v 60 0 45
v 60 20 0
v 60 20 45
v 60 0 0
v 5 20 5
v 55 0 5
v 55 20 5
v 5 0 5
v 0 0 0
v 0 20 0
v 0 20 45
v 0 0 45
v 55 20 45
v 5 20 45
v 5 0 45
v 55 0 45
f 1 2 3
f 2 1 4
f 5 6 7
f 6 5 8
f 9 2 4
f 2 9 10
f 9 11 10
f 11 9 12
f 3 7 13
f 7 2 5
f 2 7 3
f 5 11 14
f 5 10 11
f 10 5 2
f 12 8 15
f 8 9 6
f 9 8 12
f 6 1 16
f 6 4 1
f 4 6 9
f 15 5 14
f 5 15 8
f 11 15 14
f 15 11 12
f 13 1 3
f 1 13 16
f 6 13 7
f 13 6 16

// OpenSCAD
// Dimensions for the U-shaped bracket
base_length = 60;  // Length of the horizontal base
base_width = 20;   // Width of the horizontal base
base_thickness = 5; // Thickness of the horizontal base

side_wall_height = 40; // Height of the vertical side walls
side_wall_thickness = 5; // Thickness of the vertical side walls

module u_shaped_bracket() {
    // Horizontal base
    cube([base_length, base_width, base_thickness]);

    // Left vertical side wall (adjusted to be perfectly perpendicular)
    translate([0, 0, base_thickness])
        cube([side_wall_thickness, base_width, side_wall_height]);

    // Right vertical side wall (adjusted to be perfectly perpendicular)
    translate([base_length - side_wall_thickness, 0, base_thickness])
        cube([side_wall_thickness, base_width, side_wall_height]);
}

// Render the U-shaped bracket
u_shaped_bracket();
